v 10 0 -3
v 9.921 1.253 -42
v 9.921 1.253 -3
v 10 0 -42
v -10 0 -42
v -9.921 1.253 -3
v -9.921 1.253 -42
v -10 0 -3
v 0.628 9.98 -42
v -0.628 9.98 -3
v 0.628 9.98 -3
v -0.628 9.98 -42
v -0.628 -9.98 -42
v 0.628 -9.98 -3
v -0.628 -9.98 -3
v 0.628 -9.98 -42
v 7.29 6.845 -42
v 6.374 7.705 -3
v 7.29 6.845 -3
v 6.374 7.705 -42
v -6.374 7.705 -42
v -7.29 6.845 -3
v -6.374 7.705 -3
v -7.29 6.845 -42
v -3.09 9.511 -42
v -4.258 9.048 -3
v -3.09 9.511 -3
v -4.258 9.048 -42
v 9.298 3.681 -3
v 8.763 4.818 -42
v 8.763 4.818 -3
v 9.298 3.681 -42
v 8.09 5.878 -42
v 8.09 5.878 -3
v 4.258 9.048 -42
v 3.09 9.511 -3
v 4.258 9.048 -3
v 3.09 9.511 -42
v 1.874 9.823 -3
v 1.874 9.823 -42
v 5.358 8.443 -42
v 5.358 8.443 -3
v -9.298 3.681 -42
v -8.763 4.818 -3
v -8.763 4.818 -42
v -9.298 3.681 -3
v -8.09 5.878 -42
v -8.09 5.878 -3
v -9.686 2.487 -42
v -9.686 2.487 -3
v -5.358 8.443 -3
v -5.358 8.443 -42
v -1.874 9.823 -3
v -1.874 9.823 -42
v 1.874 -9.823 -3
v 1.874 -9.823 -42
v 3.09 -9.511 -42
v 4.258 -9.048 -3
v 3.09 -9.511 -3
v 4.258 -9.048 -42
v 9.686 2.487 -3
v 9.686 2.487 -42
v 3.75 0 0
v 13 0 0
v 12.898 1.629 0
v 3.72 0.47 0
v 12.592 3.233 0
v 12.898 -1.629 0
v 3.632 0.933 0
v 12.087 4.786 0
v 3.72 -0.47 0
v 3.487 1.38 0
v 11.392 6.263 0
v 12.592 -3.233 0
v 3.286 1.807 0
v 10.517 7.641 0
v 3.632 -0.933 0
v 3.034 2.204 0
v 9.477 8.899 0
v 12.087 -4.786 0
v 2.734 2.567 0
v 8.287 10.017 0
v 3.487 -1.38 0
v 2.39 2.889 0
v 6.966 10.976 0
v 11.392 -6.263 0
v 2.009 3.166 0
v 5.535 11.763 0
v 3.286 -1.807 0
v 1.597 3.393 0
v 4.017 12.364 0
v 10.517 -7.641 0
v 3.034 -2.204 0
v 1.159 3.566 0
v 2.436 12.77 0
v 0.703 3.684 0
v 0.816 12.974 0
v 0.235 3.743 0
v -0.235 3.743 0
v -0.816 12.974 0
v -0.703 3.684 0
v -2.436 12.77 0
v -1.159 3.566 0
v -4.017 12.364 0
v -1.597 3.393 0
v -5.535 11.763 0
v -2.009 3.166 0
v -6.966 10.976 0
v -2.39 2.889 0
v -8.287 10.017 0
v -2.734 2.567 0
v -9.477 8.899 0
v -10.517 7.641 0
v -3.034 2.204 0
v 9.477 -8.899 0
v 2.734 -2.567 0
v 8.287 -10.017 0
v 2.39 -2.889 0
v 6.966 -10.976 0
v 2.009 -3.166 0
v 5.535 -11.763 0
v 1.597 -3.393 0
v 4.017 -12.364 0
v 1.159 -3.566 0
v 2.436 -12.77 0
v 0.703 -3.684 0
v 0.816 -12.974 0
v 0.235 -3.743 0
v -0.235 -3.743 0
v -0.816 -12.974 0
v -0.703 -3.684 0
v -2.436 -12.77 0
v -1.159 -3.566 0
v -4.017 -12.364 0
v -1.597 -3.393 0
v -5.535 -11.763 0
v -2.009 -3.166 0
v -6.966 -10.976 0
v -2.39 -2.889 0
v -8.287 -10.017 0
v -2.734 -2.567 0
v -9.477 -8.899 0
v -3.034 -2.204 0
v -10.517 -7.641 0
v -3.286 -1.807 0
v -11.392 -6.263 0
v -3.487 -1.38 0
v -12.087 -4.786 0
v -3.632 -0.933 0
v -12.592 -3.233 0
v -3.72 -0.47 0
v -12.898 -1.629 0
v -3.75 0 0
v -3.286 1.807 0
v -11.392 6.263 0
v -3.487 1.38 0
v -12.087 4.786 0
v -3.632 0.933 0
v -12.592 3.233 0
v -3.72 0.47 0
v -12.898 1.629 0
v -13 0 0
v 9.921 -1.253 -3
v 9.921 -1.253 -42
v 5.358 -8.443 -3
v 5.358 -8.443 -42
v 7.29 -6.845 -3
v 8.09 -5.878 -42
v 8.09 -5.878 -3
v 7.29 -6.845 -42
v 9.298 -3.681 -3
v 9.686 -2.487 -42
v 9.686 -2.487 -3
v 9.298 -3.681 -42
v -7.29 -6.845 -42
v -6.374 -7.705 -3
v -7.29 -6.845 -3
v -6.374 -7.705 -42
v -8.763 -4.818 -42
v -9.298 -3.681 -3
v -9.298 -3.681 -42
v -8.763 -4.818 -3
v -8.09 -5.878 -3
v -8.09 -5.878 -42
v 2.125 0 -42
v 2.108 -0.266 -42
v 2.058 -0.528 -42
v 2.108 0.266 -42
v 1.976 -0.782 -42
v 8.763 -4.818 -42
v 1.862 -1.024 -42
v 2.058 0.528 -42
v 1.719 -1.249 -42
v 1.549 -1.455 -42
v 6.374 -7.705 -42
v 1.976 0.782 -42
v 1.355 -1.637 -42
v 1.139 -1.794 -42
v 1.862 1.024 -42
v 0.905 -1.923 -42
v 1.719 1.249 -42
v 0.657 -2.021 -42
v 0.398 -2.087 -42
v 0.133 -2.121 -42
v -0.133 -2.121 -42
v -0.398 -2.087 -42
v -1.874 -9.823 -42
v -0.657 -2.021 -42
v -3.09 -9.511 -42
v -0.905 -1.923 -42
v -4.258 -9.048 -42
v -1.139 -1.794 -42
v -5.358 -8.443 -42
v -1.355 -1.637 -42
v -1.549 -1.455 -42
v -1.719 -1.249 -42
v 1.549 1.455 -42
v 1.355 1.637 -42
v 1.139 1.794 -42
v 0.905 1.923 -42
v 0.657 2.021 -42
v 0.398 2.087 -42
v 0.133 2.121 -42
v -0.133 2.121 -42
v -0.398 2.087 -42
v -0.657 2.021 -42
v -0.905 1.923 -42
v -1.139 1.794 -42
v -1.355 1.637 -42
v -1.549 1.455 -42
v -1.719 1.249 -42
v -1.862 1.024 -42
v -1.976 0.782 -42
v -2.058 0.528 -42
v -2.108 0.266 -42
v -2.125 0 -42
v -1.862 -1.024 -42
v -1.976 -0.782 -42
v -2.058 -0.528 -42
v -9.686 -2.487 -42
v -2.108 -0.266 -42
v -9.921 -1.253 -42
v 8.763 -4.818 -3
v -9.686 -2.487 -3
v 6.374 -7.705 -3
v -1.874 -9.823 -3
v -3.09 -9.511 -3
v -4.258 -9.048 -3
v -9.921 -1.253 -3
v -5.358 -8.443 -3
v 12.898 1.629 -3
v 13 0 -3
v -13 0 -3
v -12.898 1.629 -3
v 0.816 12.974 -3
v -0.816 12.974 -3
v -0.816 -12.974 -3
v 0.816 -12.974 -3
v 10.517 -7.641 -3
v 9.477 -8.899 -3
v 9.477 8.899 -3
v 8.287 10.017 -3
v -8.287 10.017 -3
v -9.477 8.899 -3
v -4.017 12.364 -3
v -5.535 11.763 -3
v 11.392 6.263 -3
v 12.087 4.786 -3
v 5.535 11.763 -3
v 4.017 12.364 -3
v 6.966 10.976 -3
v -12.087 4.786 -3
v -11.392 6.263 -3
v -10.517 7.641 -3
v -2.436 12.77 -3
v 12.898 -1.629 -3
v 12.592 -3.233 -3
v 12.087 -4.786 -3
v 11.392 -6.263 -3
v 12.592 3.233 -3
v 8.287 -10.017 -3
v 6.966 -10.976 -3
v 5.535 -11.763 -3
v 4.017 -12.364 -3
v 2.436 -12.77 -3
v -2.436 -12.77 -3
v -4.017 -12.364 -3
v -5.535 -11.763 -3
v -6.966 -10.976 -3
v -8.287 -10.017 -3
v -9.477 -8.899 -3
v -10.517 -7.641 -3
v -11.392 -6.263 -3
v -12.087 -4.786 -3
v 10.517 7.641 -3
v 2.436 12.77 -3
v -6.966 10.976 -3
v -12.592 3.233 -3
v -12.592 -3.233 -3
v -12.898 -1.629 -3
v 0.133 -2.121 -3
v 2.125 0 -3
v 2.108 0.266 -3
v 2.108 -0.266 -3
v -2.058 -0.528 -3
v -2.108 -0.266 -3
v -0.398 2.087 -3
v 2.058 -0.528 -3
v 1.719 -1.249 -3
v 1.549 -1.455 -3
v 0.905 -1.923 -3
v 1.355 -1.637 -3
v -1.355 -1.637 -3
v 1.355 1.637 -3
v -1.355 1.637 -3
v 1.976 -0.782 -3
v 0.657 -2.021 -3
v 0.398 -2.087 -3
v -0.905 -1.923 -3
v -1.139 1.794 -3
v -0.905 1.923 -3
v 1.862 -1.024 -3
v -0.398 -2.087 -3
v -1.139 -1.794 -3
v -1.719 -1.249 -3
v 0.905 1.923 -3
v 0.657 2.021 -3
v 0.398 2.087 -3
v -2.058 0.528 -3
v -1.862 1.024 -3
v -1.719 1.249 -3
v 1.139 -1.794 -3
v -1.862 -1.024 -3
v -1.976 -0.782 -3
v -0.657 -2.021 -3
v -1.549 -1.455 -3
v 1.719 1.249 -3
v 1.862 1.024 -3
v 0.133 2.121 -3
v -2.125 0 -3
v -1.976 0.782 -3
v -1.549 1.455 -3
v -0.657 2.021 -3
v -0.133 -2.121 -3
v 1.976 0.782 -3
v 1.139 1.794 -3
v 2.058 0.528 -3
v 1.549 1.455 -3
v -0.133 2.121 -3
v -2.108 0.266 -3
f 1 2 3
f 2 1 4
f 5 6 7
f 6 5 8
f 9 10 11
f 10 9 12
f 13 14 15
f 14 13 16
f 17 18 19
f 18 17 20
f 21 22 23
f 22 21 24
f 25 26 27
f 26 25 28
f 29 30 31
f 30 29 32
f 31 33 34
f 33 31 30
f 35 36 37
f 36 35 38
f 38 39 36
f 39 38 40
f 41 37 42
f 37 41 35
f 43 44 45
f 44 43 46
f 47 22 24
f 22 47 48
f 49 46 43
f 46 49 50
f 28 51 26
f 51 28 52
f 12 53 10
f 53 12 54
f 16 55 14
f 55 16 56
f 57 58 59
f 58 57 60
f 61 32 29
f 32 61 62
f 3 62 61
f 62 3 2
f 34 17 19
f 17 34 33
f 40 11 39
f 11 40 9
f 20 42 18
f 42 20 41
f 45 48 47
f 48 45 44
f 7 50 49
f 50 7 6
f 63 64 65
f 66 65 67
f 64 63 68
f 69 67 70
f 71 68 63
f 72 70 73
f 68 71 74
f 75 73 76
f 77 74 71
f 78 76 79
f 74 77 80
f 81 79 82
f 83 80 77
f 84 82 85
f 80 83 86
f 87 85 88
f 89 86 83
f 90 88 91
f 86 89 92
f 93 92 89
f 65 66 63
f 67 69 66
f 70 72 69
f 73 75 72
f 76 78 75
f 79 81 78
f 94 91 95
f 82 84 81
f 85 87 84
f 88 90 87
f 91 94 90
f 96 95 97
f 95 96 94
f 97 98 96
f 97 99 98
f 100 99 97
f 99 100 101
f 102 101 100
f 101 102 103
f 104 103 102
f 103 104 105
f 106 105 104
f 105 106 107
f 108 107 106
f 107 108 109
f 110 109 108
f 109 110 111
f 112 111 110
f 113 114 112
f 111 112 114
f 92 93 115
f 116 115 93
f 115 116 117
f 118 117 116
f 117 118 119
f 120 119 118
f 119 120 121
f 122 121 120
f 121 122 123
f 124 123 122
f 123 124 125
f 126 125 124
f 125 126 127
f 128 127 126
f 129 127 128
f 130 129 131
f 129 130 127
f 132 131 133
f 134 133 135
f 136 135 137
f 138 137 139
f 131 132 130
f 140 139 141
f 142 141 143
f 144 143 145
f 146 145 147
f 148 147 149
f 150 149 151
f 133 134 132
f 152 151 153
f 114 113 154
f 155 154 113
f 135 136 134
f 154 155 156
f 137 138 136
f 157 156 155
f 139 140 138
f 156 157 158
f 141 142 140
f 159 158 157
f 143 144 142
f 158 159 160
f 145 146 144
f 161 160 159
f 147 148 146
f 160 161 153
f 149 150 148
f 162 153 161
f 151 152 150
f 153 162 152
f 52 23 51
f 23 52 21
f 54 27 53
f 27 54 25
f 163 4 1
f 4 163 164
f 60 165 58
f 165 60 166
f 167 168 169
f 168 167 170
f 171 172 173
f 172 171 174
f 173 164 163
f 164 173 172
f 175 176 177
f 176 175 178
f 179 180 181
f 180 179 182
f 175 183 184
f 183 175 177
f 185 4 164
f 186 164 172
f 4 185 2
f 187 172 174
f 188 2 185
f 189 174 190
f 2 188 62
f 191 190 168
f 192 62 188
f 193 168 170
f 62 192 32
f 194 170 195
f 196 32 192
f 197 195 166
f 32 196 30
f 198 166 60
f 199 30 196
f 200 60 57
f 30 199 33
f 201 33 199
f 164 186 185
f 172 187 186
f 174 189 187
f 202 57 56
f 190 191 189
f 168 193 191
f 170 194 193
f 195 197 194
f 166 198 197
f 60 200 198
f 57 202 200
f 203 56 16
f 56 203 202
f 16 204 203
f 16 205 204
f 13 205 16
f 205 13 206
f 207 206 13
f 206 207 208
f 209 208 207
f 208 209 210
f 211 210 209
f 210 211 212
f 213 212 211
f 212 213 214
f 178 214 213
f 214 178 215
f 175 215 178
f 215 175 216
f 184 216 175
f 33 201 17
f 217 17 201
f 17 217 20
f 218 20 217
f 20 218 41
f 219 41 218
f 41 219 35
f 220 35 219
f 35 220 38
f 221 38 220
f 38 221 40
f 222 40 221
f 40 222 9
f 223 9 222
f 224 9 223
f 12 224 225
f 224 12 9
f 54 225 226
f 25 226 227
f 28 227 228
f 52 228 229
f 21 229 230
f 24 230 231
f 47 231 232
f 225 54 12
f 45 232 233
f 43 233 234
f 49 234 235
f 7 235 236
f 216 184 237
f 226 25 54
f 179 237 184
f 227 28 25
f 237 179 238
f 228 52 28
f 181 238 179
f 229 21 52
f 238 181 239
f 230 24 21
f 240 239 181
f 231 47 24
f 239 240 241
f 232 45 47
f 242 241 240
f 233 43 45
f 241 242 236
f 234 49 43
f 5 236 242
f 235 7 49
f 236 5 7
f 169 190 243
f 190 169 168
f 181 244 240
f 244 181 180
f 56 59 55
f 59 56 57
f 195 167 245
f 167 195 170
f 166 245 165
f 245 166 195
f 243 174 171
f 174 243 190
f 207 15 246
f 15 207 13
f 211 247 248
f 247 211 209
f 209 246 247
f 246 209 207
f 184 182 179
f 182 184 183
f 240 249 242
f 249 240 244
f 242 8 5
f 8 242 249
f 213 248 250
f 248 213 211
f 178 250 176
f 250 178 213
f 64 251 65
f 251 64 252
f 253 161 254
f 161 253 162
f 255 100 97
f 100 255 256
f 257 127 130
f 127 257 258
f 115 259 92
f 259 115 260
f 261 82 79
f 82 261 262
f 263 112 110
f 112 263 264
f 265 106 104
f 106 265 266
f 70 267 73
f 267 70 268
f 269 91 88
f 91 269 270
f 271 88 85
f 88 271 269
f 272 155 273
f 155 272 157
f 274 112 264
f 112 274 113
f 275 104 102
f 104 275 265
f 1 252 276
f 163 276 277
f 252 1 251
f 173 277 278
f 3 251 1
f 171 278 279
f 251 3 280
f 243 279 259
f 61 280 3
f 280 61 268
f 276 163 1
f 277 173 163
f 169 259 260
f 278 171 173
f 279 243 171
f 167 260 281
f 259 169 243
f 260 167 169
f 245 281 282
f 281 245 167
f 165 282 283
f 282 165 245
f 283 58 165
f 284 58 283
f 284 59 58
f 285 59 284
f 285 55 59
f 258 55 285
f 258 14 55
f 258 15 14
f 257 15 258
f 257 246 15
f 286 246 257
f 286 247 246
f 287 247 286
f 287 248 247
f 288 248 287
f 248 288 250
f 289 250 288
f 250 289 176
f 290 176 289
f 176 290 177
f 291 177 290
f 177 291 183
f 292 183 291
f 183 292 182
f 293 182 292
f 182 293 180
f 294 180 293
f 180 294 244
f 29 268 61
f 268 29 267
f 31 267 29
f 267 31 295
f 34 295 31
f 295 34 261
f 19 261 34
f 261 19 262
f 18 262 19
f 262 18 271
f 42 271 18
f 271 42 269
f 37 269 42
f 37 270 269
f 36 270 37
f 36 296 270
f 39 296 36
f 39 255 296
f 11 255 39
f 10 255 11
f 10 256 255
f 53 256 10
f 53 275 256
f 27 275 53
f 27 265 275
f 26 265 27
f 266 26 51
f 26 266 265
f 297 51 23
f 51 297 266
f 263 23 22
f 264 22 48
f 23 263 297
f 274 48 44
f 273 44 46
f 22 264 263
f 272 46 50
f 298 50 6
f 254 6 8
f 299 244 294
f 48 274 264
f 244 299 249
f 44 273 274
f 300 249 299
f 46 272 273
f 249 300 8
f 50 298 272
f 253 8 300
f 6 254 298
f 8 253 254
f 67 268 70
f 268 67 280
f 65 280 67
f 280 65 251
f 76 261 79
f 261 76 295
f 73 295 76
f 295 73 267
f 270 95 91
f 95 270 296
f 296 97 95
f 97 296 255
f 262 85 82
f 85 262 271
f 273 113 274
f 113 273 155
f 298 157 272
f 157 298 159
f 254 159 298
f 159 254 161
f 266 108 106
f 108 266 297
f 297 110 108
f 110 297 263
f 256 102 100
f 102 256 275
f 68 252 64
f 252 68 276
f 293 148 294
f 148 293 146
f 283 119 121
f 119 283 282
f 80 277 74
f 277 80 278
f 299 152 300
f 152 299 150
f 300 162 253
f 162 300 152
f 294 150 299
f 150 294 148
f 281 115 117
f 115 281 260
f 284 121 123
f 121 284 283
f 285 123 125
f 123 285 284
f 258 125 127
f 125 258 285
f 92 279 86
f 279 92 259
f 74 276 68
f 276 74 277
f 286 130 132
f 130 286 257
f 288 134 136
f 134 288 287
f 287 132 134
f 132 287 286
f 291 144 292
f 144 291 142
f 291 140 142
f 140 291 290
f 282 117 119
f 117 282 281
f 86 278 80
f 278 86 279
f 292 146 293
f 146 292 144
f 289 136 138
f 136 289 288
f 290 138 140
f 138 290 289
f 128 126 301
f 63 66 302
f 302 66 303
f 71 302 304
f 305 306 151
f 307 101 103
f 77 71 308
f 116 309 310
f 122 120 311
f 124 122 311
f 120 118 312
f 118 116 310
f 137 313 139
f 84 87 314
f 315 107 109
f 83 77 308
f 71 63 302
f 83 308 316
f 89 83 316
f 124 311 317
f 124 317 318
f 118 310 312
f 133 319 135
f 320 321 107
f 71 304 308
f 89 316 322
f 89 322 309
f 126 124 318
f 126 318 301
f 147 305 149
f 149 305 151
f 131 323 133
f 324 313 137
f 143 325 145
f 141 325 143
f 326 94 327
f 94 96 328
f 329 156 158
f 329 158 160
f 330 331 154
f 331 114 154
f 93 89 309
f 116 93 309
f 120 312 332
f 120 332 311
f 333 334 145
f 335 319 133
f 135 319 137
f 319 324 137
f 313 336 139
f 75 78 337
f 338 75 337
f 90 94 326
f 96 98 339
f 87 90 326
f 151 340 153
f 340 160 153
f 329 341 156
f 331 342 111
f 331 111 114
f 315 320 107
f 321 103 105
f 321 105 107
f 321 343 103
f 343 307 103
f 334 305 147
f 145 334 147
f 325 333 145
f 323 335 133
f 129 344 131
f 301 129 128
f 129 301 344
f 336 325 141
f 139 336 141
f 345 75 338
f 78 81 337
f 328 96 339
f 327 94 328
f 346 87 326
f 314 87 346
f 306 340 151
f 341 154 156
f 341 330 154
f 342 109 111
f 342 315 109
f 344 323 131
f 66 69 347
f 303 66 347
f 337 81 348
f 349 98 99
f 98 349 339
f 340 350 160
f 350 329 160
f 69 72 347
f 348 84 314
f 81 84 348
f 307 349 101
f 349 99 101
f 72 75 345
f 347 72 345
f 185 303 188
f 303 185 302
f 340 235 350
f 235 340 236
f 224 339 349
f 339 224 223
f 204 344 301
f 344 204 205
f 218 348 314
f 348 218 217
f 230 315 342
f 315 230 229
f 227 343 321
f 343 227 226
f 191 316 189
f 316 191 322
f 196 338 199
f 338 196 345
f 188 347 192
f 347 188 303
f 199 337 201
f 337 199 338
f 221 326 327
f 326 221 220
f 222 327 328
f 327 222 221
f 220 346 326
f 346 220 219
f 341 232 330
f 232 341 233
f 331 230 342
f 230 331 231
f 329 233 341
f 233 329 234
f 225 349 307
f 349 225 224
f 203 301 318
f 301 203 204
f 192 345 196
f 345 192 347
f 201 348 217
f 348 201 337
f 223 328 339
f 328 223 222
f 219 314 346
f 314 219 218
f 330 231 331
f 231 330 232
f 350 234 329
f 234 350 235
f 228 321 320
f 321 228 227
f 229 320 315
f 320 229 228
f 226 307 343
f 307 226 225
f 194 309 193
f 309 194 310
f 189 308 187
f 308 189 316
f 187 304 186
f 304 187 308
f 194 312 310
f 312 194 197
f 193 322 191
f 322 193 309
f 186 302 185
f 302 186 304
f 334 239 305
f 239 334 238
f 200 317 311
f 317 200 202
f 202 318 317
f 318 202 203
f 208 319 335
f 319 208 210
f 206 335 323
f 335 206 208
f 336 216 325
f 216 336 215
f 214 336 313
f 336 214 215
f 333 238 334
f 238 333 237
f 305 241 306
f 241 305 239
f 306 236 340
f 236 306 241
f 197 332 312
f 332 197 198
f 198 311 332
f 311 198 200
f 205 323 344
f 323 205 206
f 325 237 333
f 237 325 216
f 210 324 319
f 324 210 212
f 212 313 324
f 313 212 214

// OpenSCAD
$fn = 50;


difference() {
	union() {
		translate(v = [0, 0, -42.0000000000]) {
			cylinder(h = 42, r = 10.0000000000);
		}
		translate(v = [0, 0, -3.0000000000]) {
			cylinder(h = 3, r = 13.0000000000);
		}
	}
	union() {
		translate(v = [0, 0, 0]) {
			rotate(a = [0, 0, 0]) {
				difference() {
					union() {
						#translate(v = [0, 0, -42.0000000000]) {
							cylinder(h = 42, r = 2.0000000000);
						}
						#translate(v = [0, 0, -3]) {
							cylinder(h = 3, r1 = 2.1250000000, r2 = 3.7500000000);
						}
						#translate(v = [0, 0, -42.0000000000]) {
							cylinder(h = 42, r = 2.1250000000);
						}
						#translate(v = [0, 0, -42.0000000000]) {
							cylinder(h = 42, r = 2.0000000000);
						}
					}
					union();
				}
			}
		}
	}
}
